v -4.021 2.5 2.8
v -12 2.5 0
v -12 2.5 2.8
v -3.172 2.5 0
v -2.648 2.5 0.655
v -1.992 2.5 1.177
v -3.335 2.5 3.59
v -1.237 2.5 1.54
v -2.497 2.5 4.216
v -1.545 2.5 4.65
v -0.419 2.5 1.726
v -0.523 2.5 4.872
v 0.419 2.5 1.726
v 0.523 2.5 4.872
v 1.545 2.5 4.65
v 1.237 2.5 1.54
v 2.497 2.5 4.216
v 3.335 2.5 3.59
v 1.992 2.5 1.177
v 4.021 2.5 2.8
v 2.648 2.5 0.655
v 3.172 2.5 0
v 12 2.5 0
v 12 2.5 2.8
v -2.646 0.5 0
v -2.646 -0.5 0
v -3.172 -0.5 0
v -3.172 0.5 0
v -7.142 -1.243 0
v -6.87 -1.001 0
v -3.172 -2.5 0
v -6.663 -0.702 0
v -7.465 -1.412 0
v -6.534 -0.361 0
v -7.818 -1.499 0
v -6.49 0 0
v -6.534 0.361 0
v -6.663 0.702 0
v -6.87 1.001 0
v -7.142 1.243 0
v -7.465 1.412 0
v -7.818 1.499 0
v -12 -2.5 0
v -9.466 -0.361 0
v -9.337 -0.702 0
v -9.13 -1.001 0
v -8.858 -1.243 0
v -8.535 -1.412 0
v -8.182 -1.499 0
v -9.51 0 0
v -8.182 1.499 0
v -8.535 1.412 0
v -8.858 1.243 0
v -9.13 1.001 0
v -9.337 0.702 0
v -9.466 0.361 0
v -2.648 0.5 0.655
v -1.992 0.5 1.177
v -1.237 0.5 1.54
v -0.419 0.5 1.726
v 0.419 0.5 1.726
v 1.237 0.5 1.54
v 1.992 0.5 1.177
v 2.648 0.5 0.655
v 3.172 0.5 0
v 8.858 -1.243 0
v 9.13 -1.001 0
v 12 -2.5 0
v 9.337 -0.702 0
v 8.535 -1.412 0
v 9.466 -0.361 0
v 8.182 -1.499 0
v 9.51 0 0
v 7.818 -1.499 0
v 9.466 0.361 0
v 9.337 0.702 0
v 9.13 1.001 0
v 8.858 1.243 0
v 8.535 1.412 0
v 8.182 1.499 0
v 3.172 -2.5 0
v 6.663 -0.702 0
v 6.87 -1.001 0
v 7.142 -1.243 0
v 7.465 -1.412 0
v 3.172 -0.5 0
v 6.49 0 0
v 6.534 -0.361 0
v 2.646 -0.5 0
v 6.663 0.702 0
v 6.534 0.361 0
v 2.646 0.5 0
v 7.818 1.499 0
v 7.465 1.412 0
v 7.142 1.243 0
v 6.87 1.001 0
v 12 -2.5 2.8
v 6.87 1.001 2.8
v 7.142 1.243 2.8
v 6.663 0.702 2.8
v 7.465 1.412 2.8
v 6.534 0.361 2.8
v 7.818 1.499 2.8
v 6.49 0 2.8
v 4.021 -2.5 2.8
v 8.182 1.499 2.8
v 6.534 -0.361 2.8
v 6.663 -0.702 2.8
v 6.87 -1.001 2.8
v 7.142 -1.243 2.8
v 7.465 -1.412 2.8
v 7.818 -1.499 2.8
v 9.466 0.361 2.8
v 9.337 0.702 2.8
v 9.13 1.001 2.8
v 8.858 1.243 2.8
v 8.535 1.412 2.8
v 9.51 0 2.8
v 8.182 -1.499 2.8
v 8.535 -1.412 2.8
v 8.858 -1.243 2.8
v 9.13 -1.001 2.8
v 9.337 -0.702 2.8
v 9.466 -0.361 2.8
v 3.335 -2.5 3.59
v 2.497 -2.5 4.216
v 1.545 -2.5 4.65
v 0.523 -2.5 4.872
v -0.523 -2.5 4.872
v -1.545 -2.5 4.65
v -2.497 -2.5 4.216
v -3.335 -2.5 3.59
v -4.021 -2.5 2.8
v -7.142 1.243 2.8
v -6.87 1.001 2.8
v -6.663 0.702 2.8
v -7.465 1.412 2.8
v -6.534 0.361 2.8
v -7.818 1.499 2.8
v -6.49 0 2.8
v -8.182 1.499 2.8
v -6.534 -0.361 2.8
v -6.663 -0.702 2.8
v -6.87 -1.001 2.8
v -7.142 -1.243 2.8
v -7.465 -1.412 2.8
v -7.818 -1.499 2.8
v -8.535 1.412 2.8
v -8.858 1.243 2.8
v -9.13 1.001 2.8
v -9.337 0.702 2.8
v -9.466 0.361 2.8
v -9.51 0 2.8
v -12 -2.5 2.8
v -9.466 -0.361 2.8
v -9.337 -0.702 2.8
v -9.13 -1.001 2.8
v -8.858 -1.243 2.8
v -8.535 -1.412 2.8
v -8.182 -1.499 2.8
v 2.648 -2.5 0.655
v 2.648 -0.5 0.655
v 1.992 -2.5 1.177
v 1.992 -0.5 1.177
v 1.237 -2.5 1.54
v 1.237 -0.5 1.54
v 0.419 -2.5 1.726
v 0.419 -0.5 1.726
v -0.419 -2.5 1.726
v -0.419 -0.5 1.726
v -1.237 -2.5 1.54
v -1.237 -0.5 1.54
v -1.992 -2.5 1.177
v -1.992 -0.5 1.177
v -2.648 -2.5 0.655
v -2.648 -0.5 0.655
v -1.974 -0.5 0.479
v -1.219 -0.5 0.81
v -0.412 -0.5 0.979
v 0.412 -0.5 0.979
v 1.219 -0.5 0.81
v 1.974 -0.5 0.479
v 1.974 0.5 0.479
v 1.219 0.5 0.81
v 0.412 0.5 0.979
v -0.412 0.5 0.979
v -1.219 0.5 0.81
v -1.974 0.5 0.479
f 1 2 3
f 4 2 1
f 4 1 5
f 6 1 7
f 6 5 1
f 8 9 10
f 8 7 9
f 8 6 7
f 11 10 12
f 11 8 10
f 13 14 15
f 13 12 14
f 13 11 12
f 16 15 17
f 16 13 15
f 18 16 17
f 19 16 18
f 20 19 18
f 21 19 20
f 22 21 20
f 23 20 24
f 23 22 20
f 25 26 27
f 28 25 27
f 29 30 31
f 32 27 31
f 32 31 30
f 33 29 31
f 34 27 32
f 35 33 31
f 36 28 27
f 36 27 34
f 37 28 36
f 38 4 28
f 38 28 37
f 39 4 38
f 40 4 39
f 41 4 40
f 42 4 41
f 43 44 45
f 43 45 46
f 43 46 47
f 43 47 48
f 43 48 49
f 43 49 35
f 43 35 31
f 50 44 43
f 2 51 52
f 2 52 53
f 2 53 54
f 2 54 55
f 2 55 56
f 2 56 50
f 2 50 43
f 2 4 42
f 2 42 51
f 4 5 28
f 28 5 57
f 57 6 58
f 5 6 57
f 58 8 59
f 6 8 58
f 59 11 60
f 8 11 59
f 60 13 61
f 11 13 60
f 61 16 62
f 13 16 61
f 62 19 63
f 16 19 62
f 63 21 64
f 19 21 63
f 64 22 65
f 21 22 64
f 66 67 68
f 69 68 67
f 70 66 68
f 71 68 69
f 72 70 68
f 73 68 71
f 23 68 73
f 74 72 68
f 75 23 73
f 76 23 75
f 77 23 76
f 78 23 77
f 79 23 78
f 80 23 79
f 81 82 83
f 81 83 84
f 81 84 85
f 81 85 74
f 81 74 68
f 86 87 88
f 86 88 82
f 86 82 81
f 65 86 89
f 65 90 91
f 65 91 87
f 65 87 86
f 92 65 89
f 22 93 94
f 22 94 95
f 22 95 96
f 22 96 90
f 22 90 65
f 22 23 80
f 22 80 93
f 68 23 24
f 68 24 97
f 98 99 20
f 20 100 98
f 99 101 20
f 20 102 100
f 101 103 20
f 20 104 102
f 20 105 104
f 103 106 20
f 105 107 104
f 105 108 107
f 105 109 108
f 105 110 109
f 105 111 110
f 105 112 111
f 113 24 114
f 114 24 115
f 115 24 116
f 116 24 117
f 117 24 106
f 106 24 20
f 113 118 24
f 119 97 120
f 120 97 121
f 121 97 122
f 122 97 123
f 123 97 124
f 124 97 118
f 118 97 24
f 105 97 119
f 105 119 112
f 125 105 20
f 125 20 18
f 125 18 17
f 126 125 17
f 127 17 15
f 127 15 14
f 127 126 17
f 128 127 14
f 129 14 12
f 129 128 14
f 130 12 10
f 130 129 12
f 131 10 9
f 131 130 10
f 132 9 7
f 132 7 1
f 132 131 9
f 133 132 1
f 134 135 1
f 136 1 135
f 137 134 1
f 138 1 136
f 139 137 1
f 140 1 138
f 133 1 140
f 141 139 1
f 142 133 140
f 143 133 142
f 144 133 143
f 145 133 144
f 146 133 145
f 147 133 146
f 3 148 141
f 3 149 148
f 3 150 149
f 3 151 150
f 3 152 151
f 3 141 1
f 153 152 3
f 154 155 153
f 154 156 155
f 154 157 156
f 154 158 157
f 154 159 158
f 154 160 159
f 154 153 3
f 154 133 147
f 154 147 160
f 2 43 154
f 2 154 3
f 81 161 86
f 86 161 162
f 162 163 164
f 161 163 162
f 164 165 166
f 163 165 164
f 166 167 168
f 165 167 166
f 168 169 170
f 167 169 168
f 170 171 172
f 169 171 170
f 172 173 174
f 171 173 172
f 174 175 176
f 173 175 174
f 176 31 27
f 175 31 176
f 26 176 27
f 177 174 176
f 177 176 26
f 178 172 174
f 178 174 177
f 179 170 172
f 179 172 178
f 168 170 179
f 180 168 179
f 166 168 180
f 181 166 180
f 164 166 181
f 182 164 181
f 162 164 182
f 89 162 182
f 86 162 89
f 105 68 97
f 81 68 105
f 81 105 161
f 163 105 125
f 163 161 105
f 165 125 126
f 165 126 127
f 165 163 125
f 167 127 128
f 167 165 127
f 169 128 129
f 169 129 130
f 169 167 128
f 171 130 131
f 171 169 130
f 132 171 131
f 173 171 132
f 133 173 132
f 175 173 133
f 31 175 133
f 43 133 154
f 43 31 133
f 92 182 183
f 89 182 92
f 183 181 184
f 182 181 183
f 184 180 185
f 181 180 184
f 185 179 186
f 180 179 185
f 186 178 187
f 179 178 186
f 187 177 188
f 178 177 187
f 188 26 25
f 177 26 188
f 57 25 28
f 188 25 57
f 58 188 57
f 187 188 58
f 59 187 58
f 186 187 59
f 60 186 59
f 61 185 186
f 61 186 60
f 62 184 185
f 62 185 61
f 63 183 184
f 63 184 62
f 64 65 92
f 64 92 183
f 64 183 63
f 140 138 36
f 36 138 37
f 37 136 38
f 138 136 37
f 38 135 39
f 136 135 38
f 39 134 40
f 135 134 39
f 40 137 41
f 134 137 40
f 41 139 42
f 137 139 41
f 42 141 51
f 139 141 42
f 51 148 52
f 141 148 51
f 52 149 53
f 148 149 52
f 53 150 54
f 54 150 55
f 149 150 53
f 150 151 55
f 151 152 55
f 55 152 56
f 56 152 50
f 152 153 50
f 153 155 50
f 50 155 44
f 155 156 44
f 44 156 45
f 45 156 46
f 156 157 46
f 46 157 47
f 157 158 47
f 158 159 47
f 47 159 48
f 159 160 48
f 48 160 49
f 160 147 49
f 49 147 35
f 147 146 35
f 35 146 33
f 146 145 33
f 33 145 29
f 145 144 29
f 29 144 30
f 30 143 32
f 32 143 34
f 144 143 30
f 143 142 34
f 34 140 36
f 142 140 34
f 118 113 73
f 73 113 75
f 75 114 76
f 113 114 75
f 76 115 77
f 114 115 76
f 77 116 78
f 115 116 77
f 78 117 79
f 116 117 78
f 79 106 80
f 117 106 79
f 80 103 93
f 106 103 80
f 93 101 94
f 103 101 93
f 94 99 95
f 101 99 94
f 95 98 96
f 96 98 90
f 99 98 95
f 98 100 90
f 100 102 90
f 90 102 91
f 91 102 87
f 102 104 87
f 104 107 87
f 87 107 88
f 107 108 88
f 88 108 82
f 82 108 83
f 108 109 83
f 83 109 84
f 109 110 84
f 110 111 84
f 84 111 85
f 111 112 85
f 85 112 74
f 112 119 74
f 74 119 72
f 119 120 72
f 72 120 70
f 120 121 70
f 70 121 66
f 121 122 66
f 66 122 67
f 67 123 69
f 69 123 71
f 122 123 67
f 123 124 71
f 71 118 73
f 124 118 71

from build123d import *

# Parameters (mm, degrees)
SKETCH_W        = 24
SKETCH_H        = 5
PAD_DEPTH       = 5
SKETCH001_R     = 3.75
POCKET_DEPTH    = 2
SKETCH002_R     = 3.75
POCKET001_DEPTH = 2
SKETCH003_R     = 4
POCKET002_DEPTH = 5
SKETCH004_R     = 1.51
POCKET003_DEPTH = 3


with BuildPart() as part:
    # Sketch → Pad (new body)
    with BuildSketch(Plane.XY):
        Rectangle(SKETCH_W, SKETCH_H)
    extrude(amount=PAD_DEPTH)

    # Sketch001 (on Face3 of Pad) → Pocket (cut)
    with BuildSketch(Plane.XZ.offset(2.5)):
        with Locations((0, -2)):
            Circle(SKETCH001_R)
    extrude(amount=-POCKET_DEPTH, mode=Mode.SUBTRACT)

    # Sketch002 (on Face1 of Pocket) → Pocket001 (cut)
    with BuildSketch(Plane(origin=(0, 2.5, 0), x_dir=(-1, 0, 0), z_dir=(0, 1, 0))):
        with Locations((0, -2)):
            Circle(SKETCH002_R)
    extrude(amount=-POCKET001_DEPTH, mode=Mode.SUBTRACT)

    # Sketch003 (on Face7 of Pocket001) → Pocket002 (cut)
    with BuildSketch(Plane.XZ.offset(2.5)):
        with Locations((0, -3)):
            Circle(SKETCH003_R)
        with BuildLine():
            ThreePointArc((4.021194, 2.8), (0, 4.9), (-4.021194, 2.8))
            Line((-4.021194, 2.8), (-12, 2.8))
            Line((-12, 2.8), (-12, 5))
            Line((-12, 5), (12, 5))
            Line((12, 2.8), (12, 5))
            Line((4.021194, 2.8), (12, 2.8))
        make_face()
    extrude(amount=-POCKET002_DEPTH, mode=Mode.SUBTRACT)

    # Sketch004 (on Face8 of Pocket002) → Pocket003 (cut)
    with BuildSketch(Plane.XY.offset(2.8)):
        with Locations((-8, 0)):
            Circle(SKETCH004_R)
        with Locations((8, 0)):
            Circle(SKETCH004_R)
    extrude(amount=-POCKET003_DEPTH, mode=Mode.SUBTRACT)


solid = part.part
